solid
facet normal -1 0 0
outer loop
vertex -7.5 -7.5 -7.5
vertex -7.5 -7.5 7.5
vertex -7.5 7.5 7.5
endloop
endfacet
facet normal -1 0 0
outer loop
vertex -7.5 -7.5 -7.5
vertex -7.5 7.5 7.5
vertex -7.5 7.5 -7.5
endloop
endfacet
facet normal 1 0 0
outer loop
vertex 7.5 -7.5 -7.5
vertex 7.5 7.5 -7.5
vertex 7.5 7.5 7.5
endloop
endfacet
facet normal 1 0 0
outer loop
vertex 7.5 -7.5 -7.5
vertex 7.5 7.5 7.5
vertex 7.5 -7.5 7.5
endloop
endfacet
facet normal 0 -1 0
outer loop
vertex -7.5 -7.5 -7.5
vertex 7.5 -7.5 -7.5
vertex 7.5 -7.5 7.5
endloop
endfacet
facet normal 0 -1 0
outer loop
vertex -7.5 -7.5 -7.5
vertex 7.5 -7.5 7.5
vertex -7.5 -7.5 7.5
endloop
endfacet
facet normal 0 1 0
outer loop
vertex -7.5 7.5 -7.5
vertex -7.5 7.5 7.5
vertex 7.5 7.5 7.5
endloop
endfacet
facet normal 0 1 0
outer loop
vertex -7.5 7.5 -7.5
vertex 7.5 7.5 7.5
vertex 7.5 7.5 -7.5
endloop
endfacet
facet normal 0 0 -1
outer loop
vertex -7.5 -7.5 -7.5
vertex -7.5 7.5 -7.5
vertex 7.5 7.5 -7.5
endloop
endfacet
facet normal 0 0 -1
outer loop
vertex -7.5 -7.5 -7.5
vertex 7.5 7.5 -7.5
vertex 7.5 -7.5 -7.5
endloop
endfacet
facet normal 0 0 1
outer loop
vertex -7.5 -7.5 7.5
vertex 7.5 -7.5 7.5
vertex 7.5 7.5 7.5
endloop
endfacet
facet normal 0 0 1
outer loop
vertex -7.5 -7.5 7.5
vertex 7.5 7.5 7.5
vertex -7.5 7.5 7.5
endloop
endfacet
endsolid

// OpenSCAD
module test(){
  cube(size=15,center=true);
  /* sphere(r=20); */
}
test();
